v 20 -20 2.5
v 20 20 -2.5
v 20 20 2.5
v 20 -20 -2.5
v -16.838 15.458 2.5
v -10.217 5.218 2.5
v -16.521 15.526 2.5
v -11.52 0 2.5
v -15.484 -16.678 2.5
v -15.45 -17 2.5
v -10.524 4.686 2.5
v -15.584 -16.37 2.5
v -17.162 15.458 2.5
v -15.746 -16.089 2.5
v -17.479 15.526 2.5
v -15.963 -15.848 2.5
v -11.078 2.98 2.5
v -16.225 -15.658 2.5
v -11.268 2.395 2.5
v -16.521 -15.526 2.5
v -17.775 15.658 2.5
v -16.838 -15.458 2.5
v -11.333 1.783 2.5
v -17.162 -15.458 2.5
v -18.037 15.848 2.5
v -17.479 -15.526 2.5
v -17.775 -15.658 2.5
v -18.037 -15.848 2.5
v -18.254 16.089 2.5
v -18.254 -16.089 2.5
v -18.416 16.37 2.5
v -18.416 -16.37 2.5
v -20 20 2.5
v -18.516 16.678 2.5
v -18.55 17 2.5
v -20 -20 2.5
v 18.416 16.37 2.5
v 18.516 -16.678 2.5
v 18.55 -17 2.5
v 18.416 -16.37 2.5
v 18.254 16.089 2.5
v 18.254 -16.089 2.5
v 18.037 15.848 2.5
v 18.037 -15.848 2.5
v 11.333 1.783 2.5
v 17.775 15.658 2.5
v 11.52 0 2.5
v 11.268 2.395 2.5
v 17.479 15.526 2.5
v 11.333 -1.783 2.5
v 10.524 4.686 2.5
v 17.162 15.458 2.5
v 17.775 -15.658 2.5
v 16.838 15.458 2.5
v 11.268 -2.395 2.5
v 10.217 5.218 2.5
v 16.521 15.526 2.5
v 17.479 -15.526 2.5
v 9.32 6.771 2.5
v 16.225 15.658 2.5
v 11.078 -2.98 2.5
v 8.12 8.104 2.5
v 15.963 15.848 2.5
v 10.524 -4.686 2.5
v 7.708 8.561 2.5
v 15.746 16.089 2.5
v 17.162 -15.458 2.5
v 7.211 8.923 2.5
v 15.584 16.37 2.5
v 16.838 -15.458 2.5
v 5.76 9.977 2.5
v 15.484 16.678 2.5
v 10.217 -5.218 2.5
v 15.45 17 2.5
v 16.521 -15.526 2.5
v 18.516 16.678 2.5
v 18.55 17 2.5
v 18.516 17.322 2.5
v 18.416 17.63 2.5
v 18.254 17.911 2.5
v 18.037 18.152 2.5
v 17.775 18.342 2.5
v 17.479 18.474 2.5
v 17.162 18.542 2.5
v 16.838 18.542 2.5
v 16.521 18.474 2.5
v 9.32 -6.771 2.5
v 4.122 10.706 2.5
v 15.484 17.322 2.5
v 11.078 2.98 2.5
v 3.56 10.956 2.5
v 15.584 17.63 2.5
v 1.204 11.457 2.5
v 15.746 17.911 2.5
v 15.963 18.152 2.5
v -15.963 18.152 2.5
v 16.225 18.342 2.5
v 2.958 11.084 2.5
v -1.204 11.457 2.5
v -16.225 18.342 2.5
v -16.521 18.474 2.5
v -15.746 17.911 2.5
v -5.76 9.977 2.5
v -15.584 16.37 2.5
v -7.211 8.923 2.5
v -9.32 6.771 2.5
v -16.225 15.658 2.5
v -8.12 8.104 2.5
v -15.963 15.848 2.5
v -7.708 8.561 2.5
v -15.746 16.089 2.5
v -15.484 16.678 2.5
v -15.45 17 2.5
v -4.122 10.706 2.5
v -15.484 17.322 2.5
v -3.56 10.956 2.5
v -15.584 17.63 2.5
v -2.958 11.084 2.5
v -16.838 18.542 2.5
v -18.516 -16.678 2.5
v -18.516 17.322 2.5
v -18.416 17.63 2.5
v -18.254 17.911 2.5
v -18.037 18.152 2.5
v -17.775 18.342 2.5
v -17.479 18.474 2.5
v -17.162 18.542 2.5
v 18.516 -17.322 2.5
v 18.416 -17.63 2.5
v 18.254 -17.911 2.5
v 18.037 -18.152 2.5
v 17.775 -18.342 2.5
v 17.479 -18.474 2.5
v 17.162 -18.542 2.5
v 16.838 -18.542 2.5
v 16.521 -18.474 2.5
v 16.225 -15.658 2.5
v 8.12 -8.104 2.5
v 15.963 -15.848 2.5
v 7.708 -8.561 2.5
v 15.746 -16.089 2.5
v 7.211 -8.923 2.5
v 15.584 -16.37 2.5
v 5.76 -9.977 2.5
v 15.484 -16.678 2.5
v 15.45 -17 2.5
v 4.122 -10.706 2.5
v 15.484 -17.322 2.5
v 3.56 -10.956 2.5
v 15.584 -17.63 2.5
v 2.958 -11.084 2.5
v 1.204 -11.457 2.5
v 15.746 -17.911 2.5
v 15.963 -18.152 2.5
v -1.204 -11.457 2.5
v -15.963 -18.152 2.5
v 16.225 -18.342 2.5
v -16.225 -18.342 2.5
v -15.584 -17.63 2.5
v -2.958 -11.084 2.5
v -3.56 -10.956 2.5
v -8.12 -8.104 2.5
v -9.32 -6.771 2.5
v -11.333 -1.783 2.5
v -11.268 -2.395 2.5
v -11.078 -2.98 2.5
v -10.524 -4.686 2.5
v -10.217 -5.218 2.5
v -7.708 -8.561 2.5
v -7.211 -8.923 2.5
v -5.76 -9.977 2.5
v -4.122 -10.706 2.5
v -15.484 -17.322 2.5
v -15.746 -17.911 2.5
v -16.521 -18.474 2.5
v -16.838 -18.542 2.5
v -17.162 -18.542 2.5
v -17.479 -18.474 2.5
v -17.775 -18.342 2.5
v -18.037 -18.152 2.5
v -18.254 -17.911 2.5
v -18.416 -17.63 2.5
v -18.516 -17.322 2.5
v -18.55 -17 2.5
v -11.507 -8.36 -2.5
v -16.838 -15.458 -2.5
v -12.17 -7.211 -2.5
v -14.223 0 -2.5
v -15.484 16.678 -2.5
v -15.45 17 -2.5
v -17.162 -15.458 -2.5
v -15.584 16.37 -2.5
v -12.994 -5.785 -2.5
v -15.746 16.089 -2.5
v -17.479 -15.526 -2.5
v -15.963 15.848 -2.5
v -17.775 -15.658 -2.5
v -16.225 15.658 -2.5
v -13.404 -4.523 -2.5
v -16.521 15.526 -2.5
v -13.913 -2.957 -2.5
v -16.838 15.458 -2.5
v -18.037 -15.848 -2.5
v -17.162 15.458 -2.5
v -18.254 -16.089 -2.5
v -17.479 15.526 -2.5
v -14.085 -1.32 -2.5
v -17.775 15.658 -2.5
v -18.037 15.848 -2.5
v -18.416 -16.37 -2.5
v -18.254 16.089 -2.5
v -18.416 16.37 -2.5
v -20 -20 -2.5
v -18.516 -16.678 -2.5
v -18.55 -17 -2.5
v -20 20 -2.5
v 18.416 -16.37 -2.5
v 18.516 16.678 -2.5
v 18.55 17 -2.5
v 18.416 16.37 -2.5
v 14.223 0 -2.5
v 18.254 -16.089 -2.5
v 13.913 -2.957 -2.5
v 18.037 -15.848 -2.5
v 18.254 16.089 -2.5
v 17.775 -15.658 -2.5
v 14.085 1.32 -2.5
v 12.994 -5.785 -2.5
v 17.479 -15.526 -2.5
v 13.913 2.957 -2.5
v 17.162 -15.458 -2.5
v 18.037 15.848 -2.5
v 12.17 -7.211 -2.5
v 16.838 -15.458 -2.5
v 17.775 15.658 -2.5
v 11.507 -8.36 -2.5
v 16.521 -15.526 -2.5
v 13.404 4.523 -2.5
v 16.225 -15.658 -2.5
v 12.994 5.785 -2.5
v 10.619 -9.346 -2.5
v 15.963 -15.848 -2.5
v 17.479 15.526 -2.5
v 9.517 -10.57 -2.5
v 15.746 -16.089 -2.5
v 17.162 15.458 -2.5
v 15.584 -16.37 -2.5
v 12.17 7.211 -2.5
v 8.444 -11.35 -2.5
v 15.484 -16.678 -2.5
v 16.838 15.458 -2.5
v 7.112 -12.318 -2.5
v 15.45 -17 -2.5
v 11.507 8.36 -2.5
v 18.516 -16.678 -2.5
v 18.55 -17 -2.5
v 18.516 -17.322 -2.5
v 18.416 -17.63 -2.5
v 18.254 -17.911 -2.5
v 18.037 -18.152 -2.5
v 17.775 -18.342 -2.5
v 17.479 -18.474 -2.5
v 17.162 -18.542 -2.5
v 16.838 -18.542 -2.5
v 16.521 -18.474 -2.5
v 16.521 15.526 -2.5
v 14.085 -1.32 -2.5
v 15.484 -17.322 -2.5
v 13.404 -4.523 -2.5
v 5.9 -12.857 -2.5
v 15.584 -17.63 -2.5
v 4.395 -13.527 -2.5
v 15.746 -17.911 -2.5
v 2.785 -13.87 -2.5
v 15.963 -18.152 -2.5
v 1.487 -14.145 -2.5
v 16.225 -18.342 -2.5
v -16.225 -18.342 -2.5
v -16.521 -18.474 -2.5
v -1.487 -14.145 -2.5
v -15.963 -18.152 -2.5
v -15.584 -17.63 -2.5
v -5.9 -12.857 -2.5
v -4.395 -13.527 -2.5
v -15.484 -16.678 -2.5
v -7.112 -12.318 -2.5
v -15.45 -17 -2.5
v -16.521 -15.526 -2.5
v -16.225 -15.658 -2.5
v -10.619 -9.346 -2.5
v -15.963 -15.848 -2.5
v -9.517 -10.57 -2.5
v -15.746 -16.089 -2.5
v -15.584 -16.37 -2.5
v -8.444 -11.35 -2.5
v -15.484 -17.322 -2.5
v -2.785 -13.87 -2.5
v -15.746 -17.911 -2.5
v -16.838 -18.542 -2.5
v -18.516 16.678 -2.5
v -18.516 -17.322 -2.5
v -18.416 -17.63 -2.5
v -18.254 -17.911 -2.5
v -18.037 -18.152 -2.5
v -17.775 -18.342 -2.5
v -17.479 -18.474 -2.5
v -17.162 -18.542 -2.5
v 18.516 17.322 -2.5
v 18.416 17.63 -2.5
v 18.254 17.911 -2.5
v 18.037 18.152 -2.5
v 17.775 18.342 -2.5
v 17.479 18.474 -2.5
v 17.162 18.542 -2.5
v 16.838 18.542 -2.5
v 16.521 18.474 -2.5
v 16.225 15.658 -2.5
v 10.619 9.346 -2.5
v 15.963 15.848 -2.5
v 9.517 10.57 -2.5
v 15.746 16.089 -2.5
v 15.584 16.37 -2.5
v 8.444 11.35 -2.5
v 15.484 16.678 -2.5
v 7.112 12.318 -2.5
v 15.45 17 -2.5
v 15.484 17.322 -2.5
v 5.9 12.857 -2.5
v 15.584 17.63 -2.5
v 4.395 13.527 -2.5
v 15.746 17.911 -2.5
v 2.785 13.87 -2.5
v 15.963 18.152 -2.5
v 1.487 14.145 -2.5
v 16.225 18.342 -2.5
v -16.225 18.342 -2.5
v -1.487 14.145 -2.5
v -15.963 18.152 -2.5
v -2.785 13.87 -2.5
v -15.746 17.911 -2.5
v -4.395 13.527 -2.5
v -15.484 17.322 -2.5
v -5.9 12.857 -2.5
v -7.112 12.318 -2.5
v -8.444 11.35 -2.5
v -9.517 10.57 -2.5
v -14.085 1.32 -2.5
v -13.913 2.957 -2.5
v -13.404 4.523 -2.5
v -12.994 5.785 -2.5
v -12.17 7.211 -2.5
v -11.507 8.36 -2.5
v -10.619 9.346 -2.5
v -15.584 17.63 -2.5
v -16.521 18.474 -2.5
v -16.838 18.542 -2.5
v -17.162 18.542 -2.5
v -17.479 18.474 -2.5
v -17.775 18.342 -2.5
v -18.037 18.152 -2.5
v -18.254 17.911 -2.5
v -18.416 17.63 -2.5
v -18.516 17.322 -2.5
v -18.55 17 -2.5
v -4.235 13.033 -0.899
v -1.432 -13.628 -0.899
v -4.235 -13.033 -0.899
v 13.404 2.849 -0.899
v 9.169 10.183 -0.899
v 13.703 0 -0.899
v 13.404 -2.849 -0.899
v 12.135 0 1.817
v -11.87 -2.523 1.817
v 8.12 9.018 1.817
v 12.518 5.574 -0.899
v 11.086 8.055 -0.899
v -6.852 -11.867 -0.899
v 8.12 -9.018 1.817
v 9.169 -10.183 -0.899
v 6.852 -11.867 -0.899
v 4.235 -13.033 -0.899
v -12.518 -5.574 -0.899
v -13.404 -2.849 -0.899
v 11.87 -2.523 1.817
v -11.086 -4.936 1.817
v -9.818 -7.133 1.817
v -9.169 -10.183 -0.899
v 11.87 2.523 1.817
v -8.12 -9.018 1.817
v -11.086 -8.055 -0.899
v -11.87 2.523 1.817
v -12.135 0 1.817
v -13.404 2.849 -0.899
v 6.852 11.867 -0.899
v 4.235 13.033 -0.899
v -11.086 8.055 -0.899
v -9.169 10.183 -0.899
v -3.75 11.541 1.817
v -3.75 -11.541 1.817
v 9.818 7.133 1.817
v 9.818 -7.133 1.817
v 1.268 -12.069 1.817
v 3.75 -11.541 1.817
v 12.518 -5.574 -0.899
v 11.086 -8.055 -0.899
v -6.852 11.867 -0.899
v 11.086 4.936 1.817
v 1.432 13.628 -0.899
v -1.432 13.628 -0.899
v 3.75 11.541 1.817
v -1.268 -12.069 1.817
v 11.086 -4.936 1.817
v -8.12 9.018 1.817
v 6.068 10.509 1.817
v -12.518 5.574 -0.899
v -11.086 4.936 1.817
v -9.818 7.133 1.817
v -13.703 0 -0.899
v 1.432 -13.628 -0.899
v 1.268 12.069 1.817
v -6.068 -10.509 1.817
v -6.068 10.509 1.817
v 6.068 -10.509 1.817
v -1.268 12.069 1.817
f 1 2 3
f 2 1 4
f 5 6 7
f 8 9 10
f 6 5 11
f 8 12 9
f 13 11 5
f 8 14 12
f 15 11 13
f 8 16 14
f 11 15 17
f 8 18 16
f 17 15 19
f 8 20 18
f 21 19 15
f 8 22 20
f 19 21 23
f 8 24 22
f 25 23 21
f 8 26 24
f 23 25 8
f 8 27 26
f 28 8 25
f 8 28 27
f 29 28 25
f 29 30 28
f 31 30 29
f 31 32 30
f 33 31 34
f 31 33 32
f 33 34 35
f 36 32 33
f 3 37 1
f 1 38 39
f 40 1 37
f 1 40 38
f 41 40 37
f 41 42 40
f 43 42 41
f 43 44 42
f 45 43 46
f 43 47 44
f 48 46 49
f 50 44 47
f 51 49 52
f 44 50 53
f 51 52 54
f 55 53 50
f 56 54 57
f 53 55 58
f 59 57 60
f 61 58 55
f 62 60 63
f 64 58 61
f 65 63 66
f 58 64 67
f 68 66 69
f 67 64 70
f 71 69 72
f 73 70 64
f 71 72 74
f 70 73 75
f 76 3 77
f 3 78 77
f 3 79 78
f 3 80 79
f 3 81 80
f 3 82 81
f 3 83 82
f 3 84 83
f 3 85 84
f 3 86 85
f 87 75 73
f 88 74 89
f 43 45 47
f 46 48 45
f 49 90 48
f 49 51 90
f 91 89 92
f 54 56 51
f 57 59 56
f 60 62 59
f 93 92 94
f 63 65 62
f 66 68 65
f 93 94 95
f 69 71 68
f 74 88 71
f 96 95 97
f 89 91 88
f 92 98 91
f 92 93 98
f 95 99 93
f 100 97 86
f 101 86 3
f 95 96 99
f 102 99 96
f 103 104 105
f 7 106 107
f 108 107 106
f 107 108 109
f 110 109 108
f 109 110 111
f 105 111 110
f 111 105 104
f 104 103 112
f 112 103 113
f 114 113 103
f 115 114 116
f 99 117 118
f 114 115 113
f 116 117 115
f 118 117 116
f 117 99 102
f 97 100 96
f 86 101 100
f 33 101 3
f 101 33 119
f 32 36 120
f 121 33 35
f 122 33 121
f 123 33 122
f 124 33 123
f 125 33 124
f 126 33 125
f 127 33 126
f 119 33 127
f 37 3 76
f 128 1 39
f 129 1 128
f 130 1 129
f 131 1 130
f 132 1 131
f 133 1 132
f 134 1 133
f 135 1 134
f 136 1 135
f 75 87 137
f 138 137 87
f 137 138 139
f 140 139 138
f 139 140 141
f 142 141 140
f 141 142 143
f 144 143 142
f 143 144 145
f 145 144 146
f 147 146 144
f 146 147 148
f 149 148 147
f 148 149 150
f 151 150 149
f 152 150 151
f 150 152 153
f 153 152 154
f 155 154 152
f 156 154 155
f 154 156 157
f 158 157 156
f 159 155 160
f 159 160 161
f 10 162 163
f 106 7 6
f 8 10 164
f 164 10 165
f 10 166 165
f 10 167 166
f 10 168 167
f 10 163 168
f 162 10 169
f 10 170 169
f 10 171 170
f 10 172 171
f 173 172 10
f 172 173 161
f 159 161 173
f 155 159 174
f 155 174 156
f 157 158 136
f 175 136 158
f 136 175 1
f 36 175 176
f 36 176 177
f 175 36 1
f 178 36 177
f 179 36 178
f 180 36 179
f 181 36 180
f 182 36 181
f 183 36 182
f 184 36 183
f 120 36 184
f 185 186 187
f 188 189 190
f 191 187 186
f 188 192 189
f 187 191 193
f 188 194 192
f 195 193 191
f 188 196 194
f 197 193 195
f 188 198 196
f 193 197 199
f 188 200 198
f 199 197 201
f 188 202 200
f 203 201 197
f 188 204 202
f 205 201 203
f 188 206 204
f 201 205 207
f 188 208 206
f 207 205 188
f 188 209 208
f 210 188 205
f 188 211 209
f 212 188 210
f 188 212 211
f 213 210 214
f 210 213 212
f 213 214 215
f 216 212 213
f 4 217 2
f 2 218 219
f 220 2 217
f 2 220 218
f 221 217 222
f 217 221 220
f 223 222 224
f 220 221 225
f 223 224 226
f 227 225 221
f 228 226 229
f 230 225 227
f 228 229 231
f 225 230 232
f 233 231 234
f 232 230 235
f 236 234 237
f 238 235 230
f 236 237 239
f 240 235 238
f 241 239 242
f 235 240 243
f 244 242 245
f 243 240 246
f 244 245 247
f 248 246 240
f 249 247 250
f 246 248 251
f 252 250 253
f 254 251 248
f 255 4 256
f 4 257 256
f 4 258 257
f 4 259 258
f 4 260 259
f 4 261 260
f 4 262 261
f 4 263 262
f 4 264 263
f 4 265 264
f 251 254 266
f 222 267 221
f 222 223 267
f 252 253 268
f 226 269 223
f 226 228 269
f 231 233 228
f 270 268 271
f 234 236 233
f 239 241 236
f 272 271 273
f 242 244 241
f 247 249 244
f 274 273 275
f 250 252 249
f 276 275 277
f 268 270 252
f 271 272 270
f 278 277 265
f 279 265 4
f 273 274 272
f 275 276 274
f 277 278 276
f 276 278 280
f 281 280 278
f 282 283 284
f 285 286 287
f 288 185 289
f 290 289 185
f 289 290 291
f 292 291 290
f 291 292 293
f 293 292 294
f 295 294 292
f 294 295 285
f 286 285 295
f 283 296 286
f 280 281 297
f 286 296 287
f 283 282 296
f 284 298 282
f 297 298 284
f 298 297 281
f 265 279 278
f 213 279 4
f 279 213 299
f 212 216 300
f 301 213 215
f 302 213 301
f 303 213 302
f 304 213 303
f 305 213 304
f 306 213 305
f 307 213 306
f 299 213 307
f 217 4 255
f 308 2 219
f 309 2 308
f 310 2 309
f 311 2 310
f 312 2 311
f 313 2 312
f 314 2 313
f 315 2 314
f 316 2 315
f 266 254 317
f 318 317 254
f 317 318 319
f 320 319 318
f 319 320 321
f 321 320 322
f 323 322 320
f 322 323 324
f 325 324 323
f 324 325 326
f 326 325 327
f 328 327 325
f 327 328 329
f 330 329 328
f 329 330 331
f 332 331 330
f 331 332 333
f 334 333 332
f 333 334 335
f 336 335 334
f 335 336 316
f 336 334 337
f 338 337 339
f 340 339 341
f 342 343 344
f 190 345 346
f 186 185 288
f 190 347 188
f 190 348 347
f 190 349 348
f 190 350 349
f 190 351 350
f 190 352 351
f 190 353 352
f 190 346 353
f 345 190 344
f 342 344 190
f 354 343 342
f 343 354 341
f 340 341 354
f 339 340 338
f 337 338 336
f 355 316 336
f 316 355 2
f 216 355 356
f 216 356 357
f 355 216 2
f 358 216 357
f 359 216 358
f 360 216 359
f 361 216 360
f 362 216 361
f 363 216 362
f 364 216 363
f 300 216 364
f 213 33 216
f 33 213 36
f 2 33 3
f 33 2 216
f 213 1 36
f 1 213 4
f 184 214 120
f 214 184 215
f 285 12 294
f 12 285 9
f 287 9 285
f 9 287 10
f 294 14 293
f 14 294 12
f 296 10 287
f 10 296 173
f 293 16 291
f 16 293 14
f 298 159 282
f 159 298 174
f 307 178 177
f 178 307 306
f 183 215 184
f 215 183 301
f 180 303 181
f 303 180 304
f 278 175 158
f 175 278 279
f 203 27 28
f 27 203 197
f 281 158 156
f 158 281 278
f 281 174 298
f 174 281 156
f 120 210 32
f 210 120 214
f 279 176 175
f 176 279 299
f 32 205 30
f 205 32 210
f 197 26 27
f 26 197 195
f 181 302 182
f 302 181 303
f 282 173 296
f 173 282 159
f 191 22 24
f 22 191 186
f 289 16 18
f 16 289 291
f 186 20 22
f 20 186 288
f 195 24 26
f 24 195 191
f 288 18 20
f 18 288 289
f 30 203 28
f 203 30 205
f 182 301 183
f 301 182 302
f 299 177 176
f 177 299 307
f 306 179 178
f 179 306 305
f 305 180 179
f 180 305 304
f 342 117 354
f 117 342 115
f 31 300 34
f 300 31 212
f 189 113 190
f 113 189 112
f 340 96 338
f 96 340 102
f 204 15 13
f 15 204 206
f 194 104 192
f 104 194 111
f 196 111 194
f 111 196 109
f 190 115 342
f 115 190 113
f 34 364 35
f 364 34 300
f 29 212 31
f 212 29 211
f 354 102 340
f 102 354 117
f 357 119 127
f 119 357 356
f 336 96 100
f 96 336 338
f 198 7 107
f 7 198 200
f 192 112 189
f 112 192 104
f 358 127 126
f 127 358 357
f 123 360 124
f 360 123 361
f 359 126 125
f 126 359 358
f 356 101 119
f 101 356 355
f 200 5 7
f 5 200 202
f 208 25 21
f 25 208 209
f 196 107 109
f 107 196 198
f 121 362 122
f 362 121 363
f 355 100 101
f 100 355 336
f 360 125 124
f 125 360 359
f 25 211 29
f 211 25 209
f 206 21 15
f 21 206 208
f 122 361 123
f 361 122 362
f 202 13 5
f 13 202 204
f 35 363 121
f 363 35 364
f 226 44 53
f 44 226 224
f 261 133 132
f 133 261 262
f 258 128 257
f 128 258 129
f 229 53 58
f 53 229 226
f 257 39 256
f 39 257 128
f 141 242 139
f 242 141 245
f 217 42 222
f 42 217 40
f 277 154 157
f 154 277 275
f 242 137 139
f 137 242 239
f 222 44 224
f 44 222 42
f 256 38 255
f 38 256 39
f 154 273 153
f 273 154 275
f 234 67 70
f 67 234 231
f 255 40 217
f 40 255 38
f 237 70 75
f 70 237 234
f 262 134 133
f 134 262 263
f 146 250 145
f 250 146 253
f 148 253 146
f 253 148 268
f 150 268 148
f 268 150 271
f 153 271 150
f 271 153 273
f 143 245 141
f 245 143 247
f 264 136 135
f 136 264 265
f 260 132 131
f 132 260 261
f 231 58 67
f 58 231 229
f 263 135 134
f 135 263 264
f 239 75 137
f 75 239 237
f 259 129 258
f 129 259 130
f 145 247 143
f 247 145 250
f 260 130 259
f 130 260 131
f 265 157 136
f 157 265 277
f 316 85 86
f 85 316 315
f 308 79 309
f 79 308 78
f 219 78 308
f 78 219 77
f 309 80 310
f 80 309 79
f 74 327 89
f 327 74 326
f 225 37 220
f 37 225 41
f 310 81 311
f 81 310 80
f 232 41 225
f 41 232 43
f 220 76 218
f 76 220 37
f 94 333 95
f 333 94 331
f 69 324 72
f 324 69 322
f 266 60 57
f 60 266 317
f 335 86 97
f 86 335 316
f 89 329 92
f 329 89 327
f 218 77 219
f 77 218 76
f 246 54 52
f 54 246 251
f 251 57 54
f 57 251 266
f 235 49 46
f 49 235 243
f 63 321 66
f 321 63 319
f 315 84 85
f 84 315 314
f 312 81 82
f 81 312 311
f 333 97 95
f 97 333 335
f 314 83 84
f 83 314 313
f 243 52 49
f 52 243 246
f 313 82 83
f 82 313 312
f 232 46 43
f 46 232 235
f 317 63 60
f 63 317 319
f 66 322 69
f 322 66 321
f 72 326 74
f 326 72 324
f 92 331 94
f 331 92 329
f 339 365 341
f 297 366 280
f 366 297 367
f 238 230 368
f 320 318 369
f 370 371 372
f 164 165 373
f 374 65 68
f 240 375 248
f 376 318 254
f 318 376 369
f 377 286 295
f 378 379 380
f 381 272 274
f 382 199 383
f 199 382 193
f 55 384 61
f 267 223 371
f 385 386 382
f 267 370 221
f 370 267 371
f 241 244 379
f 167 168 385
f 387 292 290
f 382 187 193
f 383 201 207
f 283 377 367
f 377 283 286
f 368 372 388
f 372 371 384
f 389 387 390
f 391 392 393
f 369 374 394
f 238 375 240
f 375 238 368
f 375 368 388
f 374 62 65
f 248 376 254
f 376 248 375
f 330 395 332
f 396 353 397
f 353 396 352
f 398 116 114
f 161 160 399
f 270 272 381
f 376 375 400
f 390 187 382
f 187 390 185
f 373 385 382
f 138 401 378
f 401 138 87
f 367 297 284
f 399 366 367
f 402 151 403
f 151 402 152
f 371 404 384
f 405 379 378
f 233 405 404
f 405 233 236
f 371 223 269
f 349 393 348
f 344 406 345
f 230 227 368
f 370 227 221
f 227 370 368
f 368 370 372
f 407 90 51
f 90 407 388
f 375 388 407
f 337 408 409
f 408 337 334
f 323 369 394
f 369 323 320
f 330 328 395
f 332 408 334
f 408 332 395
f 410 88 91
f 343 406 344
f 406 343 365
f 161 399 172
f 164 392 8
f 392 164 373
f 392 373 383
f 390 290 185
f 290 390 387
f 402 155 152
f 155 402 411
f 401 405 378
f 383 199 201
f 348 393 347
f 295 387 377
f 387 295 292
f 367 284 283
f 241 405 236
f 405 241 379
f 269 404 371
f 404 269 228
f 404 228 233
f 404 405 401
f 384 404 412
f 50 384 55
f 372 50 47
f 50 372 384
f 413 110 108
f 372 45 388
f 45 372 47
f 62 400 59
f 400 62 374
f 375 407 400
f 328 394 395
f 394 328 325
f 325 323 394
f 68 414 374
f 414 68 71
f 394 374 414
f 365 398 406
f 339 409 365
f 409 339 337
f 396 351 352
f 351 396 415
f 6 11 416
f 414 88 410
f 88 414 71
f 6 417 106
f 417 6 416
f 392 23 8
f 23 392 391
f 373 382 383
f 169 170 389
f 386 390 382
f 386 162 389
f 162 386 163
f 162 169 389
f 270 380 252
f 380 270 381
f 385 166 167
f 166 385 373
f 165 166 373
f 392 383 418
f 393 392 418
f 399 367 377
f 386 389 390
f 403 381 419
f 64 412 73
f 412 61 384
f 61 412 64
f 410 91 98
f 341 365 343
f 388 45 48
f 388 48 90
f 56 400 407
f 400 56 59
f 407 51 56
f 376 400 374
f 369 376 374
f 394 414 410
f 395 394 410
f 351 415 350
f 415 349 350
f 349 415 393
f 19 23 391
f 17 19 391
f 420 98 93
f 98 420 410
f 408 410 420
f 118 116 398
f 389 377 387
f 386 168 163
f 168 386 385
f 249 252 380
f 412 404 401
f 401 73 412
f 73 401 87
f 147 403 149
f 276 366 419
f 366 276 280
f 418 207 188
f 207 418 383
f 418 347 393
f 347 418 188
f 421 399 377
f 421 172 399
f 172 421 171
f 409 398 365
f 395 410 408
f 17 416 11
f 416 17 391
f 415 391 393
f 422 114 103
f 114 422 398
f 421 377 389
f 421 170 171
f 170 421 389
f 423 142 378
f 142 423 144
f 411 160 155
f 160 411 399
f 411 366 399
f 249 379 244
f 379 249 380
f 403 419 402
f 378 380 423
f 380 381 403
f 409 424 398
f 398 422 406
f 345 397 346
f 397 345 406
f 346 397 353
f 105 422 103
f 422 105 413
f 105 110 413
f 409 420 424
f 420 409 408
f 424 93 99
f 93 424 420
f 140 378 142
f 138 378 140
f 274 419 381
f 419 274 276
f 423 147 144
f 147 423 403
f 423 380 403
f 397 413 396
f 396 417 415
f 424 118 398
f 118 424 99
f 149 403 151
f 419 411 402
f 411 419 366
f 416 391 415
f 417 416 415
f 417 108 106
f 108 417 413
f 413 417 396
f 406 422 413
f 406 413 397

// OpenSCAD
$h = 5;
$s = 17; //16.825 for eurorack 1u
difference(){
    cube([40,40,$h],center=true);
    //cylinder(d=37,h=$h,center=true,$fn=30);
    //translate([-$s,0,0]) cube([19,19,$h],center=true);
    //translate([-16,0,0]) mirror([1,0,0]) cylinder(d=33,h=$h,center=true,$fn=3);
    //cylinder(d=33,h=$h,center=true,$fn=30);
    translate([-$s,-$s,0]) cylinder(d=3.1,h=$h,center=true,$fn=30);
    translate([-$s,$s,0]) cylinder(d=3.1,h=$h,center=true,$fn=30);
    translate([$s,-$s,0]) cylinder(d=3.1,h=$h,center=true,$fn=30);
    translate([$s,$s,0]) cylinder(d=3.1,h=$h,center=true,$fn=30);
    translate([0,0,-7]) sphere(15);
}
